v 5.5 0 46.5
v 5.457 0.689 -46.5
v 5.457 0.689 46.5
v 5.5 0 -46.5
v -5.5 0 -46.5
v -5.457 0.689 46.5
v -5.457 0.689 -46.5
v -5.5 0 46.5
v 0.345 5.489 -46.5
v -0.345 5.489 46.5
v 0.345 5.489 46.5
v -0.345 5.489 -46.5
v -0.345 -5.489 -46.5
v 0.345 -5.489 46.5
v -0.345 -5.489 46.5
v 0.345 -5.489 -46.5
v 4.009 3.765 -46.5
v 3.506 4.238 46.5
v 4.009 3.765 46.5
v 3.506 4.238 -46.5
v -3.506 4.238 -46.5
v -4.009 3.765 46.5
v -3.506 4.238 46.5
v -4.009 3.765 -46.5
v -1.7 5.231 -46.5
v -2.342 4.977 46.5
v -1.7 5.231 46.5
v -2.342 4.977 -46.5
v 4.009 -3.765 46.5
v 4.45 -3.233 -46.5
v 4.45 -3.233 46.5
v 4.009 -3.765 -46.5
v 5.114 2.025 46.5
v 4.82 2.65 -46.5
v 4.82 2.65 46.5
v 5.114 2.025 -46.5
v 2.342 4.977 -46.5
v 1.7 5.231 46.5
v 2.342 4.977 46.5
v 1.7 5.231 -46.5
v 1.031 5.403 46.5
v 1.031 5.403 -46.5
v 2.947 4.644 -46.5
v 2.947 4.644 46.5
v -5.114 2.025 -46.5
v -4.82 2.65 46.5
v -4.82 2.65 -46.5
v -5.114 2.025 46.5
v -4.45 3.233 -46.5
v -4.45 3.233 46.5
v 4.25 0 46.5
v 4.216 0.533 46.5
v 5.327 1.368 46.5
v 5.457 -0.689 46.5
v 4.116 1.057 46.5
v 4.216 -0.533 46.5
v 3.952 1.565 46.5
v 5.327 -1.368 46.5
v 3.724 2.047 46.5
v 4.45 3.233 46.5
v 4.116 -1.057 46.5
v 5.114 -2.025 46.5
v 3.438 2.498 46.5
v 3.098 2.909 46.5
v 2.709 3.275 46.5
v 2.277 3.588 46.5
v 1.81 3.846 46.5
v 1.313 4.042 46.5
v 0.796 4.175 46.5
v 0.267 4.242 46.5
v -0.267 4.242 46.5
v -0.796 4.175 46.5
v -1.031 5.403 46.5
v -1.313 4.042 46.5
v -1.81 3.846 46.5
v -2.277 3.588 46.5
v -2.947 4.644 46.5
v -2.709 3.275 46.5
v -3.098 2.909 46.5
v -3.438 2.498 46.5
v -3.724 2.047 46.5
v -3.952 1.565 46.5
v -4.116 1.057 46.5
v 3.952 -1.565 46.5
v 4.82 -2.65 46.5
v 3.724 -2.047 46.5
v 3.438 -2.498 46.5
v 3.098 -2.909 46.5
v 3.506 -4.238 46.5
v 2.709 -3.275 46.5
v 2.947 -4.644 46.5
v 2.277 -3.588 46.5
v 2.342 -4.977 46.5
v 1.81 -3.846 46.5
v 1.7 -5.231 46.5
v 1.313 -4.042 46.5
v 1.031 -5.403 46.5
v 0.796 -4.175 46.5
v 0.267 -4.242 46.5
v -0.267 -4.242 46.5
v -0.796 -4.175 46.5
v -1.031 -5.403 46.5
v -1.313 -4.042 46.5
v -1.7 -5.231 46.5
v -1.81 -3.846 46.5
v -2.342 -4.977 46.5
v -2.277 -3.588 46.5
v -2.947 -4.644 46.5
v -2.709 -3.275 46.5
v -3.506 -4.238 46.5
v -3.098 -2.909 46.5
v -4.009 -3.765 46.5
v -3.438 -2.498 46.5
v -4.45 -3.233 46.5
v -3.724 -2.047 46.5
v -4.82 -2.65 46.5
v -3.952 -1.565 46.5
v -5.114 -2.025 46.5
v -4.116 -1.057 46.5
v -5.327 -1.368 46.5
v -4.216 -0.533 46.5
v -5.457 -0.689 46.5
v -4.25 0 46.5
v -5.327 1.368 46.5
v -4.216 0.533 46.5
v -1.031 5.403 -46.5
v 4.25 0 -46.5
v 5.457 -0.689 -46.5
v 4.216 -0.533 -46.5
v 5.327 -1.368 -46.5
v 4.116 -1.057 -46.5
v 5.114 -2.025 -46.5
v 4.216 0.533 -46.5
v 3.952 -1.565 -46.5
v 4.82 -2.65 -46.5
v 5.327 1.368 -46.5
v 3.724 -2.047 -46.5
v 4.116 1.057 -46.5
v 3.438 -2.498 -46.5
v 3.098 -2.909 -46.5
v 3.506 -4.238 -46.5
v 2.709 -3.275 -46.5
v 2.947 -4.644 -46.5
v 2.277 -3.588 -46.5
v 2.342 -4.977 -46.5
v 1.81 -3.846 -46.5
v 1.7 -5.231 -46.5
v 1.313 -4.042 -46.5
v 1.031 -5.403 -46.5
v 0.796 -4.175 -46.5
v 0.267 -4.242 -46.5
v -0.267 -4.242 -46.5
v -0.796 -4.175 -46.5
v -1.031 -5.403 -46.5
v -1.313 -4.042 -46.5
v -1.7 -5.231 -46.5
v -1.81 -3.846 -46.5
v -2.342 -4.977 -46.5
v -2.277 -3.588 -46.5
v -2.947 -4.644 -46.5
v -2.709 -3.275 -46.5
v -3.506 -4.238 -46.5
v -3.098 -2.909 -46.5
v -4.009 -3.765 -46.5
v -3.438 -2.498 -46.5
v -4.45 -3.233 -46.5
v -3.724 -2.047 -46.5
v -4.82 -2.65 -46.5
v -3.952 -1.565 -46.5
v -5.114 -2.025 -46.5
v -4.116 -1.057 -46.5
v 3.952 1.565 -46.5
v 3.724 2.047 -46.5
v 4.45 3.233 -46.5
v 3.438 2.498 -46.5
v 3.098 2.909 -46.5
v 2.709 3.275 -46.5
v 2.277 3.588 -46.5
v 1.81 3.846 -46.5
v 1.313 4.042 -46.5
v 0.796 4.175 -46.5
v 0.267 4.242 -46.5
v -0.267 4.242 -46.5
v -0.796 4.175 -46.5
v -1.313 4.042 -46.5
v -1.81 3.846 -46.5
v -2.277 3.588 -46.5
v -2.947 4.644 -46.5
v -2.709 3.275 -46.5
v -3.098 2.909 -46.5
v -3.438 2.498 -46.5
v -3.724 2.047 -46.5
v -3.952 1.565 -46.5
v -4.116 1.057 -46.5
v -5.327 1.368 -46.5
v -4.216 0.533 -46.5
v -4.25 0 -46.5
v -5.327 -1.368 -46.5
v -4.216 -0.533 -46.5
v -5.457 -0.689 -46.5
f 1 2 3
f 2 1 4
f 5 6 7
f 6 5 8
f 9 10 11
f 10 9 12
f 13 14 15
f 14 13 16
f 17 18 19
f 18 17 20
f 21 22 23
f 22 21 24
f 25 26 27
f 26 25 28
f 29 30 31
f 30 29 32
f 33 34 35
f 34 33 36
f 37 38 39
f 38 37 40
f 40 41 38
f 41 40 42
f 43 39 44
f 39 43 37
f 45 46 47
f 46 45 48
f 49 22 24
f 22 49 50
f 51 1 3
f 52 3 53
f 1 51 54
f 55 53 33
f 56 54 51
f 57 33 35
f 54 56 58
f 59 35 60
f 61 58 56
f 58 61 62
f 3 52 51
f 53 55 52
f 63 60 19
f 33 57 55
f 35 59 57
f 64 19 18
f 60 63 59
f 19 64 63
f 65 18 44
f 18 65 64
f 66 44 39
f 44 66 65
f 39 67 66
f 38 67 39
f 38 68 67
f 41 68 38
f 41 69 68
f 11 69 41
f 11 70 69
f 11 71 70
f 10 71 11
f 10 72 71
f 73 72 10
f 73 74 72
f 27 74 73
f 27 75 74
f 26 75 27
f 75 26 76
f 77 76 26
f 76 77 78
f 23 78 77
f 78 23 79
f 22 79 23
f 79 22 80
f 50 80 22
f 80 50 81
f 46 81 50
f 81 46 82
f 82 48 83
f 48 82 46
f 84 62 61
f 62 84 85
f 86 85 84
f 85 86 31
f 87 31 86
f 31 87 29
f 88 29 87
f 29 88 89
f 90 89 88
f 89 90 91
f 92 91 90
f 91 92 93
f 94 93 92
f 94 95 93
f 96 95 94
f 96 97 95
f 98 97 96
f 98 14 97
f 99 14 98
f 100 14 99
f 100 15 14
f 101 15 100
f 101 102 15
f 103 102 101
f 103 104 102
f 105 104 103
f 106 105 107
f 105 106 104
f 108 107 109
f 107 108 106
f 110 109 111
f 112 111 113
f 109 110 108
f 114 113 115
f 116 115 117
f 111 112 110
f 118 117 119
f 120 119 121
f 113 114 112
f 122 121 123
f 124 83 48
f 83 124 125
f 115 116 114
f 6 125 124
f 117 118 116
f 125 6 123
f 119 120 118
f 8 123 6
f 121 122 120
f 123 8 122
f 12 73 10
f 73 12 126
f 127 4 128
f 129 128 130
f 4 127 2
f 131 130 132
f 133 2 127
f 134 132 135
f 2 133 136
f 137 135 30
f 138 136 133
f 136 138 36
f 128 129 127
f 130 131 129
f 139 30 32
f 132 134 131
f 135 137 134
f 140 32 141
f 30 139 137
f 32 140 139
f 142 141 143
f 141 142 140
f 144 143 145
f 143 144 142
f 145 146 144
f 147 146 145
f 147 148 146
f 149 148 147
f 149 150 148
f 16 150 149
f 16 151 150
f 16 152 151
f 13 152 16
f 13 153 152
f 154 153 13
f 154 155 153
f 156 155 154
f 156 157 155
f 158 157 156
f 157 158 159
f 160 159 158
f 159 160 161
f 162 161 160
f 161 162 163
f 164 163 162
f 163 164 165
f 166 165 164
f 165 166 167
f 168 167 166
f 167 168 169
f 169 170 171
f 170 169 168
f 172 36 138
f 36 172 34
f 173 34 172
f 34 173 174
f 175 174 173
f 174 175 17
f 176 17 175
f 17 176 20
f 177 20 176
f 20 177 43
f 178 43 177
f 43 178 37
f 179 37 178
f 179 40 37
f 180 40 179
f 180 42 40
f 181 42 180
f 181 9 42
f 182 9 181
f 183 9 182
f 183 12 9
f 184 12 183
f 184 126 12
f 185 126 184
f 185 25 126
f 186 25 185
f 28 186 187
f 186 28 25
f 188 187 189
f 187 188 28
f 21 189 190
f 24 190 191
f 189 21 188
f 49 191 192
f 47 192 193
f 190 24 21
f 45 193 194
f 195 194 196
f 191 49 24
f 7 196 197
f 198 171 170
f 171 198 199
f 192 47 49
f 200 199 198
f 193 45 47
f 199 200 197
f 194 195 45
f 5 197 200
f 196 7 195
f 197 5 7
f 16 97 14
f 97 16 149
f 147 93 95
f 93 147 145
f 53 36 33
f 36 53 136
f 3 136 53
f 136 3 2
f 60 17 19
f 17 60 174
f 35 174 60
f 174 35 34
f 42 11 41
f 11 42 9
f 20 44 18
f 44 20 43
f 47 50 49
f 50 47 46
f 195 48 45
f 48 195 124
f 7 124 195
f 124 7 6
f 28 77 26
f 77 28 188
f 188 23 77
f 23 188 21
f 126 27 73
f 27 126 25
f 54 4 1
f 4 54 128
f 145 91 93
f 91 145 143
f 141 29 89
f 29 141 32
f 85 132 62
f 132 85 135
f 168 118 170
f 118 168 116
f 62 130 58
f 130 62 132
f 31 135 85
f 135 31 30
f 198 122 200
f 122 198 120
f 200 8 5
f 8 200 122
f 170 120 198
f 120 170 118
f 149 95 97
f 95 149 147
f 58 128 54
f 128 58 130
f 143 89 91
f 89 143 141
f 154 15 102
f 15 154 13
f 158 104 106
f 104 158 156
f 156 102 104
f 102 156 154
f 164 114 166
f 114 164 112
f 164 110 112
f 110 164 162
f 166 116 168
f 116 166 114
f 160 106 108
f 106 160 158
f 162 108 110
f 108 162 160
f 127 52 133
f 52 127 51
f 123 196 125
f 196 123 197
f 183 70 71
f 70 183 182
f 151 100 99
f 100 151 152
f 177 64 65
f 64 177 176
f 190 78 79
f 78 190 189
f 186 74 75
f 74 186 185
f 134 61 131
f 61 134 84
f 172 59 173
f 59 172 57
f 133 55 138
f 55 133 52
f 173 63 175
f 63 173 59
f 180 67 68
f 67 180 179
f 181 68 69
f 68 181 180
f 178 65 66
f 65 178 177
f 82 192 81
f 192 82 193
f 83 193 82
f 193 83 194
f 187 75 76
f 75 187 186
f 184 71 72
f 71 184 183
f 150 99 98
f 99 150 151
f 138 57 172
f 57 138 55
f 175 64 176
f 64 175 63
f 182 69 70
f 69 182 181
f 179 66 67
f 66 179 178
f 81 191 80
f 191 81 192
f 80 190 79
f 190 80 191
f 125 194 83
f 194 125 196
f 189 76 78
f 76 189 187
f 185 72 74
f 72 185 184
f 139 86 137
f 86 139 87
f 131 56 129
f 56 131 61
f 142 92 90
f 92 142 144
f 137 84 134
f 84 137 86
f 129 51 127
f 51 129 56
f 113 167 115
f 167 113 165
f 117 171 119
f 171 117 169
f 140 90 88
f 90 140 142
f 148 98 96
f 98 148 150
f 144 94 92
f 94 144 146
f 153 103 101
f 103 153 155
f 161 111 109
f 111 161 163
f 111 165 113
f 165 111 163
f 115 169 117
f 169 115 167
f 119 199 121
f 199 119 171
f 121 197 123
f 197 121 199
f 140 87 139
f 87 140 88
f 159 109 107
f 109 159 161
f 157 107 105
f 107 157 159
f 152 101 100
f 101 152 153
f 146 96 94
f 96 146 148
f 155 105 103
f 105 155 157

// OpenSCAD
$fn = 50;


difference() {
	union() {
		translate(v = [0, 0, -46.5000000000]) {
			cylinder(h = 93, r = 5.5000000000);
		}
	}
	union() {
		translate(v = [0, 0, -100.0000000000]) {
			cylinder(h = 200, r = 4.2500000000);
		}
	}
}
